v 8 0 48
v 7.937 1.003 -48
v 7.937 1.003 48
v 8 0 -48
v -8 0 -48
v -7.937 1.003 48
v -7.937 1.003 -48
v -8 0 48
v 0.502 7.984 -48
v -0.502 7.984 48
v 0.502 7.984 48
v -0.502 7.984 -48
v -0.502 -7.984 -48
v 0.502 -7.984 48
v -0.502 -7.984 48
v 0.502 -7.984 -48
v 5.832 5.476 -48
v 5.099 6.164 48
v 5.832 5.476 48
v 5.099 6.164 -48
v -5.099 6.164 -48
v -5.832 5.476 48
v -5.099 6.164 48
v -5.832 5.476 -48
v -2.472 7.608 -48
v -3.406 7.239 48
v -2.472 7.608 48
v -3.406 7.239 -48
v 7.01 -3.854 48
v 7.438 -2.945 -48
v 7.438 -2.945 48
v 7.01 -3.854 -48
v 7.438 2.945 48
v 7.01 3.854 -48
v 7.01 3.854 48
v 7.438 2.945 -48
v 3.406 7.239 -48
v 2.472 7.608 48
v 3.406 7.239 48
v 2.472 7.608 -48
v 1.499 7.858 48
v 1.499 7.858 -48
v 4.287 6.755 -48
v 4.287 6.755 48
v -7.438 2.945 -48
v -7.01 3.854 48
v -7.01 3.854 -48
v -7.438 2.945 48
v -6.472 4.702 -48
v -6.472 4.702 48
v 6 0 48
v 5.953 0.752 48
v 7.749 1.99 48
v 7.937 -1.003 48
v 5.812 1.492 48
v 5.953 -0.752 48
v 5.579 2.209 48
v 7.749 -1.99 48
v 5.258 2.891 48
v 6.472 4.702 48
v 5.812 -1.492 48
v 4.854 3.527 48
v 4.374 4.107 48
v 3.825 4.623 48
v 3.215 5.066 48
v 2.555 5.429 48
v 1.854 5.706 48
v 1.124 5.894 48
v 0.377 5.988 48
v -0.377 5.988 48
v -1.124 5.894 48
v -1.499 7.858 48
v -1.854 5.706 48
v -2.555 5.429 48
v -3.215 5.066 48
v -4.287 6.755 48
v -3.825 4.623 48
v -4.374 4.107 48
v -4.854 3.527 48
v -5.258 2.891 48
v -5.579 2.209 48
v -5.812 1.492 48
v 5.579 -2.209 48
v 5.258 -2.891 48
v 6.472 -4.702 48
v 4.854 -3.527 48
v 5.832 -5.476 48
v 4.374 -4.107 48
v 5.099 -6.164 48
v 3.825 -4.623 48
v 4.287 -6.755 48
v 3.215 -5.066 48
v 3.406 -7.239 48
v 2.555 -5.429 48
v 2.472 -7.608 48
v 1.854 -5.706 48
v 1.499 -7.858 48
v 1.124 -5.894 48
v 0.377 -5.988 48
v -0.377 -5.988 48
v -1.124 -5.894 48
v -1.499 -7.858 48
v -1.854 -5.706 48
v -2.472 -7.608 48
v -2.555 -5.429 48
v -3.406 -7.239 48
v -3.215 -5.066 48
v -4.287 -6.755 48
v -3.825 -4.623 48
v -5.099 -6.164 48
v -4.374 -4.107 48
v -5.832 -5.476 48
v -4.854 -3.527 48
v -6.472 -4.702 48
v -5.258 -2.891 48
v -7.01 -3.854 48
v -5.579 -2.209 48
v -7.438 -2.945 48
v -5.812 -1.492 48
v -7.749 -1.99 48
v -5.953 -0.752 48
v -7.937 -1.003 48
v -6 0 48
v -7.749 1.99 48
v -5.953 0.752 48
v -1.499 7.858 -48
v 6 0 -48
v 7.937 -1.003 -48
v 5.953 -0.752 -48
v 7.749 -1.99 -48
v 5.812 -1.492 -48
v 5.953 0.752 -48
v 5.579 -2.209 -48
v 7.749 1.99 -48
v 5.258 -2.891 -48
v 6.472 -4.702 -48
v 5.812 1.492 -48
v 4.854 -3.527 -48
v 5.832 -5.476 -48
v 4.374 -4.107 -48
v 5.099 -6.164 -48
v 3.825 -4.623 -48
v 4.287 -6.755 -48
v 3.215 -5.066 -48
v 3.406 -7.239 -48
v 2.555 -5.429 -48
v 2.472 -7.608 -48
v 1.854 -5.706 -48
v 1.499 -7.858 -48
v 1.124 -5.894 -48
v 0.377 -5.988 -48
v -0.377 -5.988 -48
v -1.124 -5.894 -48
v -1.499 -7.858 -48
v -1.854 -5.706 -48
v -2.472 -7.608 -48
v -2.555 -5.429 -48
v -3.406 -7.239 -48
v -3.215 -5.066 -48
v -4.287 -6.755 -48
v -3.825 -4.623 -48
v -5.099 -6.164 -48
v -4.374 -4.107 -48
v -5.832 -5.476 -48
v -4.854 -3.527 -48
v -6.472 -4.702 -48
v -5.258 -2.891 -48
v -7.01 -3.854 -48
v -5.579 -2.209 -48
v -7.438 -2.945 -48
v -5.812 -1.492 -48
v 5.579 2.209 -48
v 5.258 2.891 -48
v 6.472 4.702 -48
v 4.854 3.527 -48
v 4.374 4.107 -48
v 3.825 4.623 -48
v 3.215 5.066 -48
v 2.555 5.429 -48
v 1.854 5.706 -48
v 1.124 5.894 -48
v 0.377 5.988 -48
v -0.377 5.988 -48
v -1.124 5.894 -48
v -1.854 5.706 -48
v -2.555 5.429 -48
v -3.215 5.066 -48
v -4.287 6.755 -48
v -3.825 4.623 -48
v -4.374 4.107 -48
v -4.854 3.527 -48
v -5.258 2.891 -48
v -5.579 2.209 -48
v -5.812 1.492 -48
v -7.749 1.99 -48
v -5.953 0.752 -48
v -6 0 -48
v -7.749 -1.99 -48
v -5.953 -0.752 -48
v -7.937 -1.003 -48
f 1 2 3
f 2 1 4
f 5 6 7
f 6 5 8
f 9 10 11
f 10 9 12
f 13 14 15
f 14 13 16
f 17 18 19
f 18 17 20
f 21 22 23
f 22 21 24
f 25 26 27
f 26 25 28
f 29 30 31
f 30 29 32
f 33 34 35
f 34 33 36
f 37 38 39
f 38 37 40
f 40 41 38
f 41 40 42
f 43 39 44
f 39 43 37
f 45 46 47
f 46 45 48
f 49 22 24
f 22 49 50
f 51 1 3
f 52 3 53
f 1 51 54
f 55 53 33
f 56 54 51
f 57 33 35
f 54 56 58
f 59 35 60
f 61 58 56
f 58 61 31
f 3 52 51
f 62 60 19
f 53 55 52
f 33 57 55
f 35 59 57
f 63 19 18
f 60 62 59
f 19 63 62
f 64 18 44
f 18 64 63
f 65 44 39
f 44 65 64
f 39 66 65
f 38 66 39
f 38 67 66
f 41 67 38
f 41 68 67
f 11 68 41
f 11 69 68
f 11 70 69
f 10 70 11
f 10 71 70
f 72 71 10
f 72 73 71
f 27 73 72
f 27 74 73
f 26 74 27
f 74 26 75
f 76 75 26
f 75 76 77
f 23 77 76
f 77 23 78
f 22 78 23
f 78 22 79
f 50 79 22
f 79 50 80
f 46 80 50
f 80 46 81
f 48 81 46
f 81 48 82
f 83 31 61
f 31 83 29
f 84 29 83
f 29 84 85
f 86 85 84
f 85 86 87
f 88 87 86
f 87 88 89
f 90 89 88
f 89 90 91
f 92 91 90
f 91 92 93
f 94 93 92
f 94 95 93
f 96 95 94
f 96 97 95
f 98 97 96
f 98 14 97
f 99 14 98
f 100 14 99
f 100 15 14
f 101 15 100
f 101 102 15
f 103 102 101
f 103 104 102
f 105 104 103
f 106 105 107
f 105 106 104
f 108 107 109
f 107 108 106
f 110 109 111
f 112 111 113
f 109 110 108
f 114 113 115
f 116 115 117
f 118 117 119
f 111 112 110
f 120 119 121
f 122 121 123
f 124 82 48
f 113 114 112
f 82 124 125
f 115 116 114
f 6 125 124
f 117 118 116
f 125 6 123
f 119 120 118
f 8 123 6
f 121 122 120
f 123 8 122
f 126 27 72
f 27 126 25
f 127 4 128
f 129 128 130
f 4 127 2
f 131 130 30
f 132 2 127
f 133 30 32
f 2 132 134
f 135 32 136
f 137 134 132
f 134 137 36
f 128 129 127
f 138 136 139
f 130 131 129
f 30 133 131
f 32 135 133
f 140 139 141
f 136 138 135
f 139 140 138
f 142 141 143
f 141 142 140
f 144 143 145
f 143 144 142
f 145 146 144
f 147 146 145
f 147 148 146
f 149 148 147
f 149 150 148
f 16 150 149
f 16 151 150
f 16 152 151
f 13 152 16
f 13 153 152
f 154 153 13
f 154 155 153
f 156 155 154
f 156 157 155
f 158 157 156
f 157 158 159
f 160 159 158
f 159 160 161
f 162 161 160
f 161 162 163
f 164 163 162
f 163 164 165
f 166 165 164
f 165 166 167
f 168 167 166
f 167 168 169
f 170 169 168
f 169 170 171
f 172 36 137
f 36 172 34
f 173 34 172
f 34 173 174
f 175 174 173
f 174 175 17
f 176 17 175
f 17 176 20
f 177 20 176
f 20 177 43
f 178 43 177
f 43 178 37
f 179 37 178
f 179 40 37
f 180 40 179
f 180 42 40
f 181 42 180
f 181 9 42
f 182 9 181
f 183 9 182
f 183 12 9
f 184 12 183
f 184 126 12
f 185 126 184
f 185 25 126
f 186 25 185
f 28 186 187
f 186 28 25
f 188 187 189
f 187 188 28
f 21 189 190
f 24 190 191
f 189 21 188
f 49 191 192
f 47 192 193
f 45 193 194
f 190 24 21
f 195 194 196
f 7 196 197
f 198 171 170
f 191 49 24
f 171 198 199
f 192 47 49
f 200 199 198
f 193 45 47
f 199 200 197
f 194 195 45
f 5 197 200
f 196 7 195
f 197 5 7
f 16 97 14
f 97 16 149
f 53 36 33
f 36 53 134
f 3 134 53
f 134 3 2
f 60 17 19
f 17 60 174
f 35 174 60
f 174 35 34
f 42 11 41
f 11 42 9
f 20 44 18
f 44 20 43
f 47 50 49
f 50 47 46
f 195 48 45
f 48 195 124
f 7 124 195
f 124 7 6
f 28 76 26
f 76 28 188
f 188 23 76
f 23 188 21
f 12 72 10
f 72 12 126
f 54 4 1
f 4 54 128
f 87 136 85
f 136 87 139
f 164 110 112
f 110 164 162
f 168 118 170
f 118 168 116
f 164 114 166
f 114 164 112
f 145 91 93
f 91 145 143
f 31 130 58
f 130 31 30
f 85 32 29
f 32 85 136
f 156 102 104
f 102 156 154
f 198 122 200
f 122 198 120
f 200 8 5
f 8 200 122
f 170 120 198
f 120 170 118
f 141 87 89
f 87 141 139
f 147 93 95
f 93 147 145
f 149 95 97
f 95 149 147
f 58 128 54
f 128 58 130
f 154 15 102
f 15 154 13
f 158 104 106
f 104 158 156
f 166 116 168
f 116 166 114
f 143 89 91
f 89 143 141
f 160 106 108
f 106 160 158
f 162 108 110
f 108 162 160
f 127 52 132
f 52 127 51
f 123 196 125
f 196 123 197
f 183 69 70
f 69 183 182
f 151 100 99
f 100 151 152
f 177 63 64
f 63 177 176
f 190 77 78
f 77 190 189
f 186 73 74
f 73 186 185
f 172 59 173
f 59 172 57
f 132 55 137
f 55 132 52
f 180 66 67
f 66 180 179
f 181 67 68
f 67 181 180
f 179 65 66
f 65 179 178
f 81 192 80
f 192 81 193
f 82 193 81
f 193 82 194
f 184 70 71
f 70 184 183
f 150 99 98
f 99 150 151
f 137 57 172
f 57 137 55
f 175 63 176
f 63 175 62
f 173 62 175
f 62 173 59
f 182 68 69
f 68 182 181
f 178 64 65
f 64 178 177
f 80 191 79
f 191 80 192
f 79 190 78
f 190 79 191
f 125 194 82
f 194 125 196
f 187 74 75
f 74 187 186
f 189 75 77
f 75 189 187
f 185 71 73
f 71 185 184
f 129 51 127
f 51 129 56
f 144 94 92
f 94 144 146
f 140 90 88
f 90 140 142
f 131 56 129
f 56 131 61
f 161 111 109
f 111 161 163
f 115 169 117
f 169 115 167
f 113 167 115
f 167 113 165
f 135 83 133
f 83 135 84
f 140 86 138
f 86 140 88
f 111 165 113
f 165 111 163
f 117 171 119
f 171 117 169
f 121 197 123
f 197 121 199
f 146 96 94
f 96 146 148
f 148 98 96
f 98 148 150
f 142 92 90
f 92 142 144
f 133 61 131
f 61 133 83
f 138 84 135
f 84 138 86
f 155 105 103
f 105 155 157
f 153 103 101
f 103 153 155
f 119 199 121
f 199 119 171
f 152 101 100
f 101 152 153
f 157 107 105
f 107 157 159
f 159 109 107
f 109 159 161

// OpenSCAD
$fn = 50;


difference() {
	union() {
		translate(v = [0, 0, -48.0000000000]) {
			cylinder(h = 96, r = 8.0000000000);
		}
	}
	union() {
		translate(v = [0, 0, -100.0000000000]) {
			cylinder(h = 200, r = 6);
		}
	}
}
